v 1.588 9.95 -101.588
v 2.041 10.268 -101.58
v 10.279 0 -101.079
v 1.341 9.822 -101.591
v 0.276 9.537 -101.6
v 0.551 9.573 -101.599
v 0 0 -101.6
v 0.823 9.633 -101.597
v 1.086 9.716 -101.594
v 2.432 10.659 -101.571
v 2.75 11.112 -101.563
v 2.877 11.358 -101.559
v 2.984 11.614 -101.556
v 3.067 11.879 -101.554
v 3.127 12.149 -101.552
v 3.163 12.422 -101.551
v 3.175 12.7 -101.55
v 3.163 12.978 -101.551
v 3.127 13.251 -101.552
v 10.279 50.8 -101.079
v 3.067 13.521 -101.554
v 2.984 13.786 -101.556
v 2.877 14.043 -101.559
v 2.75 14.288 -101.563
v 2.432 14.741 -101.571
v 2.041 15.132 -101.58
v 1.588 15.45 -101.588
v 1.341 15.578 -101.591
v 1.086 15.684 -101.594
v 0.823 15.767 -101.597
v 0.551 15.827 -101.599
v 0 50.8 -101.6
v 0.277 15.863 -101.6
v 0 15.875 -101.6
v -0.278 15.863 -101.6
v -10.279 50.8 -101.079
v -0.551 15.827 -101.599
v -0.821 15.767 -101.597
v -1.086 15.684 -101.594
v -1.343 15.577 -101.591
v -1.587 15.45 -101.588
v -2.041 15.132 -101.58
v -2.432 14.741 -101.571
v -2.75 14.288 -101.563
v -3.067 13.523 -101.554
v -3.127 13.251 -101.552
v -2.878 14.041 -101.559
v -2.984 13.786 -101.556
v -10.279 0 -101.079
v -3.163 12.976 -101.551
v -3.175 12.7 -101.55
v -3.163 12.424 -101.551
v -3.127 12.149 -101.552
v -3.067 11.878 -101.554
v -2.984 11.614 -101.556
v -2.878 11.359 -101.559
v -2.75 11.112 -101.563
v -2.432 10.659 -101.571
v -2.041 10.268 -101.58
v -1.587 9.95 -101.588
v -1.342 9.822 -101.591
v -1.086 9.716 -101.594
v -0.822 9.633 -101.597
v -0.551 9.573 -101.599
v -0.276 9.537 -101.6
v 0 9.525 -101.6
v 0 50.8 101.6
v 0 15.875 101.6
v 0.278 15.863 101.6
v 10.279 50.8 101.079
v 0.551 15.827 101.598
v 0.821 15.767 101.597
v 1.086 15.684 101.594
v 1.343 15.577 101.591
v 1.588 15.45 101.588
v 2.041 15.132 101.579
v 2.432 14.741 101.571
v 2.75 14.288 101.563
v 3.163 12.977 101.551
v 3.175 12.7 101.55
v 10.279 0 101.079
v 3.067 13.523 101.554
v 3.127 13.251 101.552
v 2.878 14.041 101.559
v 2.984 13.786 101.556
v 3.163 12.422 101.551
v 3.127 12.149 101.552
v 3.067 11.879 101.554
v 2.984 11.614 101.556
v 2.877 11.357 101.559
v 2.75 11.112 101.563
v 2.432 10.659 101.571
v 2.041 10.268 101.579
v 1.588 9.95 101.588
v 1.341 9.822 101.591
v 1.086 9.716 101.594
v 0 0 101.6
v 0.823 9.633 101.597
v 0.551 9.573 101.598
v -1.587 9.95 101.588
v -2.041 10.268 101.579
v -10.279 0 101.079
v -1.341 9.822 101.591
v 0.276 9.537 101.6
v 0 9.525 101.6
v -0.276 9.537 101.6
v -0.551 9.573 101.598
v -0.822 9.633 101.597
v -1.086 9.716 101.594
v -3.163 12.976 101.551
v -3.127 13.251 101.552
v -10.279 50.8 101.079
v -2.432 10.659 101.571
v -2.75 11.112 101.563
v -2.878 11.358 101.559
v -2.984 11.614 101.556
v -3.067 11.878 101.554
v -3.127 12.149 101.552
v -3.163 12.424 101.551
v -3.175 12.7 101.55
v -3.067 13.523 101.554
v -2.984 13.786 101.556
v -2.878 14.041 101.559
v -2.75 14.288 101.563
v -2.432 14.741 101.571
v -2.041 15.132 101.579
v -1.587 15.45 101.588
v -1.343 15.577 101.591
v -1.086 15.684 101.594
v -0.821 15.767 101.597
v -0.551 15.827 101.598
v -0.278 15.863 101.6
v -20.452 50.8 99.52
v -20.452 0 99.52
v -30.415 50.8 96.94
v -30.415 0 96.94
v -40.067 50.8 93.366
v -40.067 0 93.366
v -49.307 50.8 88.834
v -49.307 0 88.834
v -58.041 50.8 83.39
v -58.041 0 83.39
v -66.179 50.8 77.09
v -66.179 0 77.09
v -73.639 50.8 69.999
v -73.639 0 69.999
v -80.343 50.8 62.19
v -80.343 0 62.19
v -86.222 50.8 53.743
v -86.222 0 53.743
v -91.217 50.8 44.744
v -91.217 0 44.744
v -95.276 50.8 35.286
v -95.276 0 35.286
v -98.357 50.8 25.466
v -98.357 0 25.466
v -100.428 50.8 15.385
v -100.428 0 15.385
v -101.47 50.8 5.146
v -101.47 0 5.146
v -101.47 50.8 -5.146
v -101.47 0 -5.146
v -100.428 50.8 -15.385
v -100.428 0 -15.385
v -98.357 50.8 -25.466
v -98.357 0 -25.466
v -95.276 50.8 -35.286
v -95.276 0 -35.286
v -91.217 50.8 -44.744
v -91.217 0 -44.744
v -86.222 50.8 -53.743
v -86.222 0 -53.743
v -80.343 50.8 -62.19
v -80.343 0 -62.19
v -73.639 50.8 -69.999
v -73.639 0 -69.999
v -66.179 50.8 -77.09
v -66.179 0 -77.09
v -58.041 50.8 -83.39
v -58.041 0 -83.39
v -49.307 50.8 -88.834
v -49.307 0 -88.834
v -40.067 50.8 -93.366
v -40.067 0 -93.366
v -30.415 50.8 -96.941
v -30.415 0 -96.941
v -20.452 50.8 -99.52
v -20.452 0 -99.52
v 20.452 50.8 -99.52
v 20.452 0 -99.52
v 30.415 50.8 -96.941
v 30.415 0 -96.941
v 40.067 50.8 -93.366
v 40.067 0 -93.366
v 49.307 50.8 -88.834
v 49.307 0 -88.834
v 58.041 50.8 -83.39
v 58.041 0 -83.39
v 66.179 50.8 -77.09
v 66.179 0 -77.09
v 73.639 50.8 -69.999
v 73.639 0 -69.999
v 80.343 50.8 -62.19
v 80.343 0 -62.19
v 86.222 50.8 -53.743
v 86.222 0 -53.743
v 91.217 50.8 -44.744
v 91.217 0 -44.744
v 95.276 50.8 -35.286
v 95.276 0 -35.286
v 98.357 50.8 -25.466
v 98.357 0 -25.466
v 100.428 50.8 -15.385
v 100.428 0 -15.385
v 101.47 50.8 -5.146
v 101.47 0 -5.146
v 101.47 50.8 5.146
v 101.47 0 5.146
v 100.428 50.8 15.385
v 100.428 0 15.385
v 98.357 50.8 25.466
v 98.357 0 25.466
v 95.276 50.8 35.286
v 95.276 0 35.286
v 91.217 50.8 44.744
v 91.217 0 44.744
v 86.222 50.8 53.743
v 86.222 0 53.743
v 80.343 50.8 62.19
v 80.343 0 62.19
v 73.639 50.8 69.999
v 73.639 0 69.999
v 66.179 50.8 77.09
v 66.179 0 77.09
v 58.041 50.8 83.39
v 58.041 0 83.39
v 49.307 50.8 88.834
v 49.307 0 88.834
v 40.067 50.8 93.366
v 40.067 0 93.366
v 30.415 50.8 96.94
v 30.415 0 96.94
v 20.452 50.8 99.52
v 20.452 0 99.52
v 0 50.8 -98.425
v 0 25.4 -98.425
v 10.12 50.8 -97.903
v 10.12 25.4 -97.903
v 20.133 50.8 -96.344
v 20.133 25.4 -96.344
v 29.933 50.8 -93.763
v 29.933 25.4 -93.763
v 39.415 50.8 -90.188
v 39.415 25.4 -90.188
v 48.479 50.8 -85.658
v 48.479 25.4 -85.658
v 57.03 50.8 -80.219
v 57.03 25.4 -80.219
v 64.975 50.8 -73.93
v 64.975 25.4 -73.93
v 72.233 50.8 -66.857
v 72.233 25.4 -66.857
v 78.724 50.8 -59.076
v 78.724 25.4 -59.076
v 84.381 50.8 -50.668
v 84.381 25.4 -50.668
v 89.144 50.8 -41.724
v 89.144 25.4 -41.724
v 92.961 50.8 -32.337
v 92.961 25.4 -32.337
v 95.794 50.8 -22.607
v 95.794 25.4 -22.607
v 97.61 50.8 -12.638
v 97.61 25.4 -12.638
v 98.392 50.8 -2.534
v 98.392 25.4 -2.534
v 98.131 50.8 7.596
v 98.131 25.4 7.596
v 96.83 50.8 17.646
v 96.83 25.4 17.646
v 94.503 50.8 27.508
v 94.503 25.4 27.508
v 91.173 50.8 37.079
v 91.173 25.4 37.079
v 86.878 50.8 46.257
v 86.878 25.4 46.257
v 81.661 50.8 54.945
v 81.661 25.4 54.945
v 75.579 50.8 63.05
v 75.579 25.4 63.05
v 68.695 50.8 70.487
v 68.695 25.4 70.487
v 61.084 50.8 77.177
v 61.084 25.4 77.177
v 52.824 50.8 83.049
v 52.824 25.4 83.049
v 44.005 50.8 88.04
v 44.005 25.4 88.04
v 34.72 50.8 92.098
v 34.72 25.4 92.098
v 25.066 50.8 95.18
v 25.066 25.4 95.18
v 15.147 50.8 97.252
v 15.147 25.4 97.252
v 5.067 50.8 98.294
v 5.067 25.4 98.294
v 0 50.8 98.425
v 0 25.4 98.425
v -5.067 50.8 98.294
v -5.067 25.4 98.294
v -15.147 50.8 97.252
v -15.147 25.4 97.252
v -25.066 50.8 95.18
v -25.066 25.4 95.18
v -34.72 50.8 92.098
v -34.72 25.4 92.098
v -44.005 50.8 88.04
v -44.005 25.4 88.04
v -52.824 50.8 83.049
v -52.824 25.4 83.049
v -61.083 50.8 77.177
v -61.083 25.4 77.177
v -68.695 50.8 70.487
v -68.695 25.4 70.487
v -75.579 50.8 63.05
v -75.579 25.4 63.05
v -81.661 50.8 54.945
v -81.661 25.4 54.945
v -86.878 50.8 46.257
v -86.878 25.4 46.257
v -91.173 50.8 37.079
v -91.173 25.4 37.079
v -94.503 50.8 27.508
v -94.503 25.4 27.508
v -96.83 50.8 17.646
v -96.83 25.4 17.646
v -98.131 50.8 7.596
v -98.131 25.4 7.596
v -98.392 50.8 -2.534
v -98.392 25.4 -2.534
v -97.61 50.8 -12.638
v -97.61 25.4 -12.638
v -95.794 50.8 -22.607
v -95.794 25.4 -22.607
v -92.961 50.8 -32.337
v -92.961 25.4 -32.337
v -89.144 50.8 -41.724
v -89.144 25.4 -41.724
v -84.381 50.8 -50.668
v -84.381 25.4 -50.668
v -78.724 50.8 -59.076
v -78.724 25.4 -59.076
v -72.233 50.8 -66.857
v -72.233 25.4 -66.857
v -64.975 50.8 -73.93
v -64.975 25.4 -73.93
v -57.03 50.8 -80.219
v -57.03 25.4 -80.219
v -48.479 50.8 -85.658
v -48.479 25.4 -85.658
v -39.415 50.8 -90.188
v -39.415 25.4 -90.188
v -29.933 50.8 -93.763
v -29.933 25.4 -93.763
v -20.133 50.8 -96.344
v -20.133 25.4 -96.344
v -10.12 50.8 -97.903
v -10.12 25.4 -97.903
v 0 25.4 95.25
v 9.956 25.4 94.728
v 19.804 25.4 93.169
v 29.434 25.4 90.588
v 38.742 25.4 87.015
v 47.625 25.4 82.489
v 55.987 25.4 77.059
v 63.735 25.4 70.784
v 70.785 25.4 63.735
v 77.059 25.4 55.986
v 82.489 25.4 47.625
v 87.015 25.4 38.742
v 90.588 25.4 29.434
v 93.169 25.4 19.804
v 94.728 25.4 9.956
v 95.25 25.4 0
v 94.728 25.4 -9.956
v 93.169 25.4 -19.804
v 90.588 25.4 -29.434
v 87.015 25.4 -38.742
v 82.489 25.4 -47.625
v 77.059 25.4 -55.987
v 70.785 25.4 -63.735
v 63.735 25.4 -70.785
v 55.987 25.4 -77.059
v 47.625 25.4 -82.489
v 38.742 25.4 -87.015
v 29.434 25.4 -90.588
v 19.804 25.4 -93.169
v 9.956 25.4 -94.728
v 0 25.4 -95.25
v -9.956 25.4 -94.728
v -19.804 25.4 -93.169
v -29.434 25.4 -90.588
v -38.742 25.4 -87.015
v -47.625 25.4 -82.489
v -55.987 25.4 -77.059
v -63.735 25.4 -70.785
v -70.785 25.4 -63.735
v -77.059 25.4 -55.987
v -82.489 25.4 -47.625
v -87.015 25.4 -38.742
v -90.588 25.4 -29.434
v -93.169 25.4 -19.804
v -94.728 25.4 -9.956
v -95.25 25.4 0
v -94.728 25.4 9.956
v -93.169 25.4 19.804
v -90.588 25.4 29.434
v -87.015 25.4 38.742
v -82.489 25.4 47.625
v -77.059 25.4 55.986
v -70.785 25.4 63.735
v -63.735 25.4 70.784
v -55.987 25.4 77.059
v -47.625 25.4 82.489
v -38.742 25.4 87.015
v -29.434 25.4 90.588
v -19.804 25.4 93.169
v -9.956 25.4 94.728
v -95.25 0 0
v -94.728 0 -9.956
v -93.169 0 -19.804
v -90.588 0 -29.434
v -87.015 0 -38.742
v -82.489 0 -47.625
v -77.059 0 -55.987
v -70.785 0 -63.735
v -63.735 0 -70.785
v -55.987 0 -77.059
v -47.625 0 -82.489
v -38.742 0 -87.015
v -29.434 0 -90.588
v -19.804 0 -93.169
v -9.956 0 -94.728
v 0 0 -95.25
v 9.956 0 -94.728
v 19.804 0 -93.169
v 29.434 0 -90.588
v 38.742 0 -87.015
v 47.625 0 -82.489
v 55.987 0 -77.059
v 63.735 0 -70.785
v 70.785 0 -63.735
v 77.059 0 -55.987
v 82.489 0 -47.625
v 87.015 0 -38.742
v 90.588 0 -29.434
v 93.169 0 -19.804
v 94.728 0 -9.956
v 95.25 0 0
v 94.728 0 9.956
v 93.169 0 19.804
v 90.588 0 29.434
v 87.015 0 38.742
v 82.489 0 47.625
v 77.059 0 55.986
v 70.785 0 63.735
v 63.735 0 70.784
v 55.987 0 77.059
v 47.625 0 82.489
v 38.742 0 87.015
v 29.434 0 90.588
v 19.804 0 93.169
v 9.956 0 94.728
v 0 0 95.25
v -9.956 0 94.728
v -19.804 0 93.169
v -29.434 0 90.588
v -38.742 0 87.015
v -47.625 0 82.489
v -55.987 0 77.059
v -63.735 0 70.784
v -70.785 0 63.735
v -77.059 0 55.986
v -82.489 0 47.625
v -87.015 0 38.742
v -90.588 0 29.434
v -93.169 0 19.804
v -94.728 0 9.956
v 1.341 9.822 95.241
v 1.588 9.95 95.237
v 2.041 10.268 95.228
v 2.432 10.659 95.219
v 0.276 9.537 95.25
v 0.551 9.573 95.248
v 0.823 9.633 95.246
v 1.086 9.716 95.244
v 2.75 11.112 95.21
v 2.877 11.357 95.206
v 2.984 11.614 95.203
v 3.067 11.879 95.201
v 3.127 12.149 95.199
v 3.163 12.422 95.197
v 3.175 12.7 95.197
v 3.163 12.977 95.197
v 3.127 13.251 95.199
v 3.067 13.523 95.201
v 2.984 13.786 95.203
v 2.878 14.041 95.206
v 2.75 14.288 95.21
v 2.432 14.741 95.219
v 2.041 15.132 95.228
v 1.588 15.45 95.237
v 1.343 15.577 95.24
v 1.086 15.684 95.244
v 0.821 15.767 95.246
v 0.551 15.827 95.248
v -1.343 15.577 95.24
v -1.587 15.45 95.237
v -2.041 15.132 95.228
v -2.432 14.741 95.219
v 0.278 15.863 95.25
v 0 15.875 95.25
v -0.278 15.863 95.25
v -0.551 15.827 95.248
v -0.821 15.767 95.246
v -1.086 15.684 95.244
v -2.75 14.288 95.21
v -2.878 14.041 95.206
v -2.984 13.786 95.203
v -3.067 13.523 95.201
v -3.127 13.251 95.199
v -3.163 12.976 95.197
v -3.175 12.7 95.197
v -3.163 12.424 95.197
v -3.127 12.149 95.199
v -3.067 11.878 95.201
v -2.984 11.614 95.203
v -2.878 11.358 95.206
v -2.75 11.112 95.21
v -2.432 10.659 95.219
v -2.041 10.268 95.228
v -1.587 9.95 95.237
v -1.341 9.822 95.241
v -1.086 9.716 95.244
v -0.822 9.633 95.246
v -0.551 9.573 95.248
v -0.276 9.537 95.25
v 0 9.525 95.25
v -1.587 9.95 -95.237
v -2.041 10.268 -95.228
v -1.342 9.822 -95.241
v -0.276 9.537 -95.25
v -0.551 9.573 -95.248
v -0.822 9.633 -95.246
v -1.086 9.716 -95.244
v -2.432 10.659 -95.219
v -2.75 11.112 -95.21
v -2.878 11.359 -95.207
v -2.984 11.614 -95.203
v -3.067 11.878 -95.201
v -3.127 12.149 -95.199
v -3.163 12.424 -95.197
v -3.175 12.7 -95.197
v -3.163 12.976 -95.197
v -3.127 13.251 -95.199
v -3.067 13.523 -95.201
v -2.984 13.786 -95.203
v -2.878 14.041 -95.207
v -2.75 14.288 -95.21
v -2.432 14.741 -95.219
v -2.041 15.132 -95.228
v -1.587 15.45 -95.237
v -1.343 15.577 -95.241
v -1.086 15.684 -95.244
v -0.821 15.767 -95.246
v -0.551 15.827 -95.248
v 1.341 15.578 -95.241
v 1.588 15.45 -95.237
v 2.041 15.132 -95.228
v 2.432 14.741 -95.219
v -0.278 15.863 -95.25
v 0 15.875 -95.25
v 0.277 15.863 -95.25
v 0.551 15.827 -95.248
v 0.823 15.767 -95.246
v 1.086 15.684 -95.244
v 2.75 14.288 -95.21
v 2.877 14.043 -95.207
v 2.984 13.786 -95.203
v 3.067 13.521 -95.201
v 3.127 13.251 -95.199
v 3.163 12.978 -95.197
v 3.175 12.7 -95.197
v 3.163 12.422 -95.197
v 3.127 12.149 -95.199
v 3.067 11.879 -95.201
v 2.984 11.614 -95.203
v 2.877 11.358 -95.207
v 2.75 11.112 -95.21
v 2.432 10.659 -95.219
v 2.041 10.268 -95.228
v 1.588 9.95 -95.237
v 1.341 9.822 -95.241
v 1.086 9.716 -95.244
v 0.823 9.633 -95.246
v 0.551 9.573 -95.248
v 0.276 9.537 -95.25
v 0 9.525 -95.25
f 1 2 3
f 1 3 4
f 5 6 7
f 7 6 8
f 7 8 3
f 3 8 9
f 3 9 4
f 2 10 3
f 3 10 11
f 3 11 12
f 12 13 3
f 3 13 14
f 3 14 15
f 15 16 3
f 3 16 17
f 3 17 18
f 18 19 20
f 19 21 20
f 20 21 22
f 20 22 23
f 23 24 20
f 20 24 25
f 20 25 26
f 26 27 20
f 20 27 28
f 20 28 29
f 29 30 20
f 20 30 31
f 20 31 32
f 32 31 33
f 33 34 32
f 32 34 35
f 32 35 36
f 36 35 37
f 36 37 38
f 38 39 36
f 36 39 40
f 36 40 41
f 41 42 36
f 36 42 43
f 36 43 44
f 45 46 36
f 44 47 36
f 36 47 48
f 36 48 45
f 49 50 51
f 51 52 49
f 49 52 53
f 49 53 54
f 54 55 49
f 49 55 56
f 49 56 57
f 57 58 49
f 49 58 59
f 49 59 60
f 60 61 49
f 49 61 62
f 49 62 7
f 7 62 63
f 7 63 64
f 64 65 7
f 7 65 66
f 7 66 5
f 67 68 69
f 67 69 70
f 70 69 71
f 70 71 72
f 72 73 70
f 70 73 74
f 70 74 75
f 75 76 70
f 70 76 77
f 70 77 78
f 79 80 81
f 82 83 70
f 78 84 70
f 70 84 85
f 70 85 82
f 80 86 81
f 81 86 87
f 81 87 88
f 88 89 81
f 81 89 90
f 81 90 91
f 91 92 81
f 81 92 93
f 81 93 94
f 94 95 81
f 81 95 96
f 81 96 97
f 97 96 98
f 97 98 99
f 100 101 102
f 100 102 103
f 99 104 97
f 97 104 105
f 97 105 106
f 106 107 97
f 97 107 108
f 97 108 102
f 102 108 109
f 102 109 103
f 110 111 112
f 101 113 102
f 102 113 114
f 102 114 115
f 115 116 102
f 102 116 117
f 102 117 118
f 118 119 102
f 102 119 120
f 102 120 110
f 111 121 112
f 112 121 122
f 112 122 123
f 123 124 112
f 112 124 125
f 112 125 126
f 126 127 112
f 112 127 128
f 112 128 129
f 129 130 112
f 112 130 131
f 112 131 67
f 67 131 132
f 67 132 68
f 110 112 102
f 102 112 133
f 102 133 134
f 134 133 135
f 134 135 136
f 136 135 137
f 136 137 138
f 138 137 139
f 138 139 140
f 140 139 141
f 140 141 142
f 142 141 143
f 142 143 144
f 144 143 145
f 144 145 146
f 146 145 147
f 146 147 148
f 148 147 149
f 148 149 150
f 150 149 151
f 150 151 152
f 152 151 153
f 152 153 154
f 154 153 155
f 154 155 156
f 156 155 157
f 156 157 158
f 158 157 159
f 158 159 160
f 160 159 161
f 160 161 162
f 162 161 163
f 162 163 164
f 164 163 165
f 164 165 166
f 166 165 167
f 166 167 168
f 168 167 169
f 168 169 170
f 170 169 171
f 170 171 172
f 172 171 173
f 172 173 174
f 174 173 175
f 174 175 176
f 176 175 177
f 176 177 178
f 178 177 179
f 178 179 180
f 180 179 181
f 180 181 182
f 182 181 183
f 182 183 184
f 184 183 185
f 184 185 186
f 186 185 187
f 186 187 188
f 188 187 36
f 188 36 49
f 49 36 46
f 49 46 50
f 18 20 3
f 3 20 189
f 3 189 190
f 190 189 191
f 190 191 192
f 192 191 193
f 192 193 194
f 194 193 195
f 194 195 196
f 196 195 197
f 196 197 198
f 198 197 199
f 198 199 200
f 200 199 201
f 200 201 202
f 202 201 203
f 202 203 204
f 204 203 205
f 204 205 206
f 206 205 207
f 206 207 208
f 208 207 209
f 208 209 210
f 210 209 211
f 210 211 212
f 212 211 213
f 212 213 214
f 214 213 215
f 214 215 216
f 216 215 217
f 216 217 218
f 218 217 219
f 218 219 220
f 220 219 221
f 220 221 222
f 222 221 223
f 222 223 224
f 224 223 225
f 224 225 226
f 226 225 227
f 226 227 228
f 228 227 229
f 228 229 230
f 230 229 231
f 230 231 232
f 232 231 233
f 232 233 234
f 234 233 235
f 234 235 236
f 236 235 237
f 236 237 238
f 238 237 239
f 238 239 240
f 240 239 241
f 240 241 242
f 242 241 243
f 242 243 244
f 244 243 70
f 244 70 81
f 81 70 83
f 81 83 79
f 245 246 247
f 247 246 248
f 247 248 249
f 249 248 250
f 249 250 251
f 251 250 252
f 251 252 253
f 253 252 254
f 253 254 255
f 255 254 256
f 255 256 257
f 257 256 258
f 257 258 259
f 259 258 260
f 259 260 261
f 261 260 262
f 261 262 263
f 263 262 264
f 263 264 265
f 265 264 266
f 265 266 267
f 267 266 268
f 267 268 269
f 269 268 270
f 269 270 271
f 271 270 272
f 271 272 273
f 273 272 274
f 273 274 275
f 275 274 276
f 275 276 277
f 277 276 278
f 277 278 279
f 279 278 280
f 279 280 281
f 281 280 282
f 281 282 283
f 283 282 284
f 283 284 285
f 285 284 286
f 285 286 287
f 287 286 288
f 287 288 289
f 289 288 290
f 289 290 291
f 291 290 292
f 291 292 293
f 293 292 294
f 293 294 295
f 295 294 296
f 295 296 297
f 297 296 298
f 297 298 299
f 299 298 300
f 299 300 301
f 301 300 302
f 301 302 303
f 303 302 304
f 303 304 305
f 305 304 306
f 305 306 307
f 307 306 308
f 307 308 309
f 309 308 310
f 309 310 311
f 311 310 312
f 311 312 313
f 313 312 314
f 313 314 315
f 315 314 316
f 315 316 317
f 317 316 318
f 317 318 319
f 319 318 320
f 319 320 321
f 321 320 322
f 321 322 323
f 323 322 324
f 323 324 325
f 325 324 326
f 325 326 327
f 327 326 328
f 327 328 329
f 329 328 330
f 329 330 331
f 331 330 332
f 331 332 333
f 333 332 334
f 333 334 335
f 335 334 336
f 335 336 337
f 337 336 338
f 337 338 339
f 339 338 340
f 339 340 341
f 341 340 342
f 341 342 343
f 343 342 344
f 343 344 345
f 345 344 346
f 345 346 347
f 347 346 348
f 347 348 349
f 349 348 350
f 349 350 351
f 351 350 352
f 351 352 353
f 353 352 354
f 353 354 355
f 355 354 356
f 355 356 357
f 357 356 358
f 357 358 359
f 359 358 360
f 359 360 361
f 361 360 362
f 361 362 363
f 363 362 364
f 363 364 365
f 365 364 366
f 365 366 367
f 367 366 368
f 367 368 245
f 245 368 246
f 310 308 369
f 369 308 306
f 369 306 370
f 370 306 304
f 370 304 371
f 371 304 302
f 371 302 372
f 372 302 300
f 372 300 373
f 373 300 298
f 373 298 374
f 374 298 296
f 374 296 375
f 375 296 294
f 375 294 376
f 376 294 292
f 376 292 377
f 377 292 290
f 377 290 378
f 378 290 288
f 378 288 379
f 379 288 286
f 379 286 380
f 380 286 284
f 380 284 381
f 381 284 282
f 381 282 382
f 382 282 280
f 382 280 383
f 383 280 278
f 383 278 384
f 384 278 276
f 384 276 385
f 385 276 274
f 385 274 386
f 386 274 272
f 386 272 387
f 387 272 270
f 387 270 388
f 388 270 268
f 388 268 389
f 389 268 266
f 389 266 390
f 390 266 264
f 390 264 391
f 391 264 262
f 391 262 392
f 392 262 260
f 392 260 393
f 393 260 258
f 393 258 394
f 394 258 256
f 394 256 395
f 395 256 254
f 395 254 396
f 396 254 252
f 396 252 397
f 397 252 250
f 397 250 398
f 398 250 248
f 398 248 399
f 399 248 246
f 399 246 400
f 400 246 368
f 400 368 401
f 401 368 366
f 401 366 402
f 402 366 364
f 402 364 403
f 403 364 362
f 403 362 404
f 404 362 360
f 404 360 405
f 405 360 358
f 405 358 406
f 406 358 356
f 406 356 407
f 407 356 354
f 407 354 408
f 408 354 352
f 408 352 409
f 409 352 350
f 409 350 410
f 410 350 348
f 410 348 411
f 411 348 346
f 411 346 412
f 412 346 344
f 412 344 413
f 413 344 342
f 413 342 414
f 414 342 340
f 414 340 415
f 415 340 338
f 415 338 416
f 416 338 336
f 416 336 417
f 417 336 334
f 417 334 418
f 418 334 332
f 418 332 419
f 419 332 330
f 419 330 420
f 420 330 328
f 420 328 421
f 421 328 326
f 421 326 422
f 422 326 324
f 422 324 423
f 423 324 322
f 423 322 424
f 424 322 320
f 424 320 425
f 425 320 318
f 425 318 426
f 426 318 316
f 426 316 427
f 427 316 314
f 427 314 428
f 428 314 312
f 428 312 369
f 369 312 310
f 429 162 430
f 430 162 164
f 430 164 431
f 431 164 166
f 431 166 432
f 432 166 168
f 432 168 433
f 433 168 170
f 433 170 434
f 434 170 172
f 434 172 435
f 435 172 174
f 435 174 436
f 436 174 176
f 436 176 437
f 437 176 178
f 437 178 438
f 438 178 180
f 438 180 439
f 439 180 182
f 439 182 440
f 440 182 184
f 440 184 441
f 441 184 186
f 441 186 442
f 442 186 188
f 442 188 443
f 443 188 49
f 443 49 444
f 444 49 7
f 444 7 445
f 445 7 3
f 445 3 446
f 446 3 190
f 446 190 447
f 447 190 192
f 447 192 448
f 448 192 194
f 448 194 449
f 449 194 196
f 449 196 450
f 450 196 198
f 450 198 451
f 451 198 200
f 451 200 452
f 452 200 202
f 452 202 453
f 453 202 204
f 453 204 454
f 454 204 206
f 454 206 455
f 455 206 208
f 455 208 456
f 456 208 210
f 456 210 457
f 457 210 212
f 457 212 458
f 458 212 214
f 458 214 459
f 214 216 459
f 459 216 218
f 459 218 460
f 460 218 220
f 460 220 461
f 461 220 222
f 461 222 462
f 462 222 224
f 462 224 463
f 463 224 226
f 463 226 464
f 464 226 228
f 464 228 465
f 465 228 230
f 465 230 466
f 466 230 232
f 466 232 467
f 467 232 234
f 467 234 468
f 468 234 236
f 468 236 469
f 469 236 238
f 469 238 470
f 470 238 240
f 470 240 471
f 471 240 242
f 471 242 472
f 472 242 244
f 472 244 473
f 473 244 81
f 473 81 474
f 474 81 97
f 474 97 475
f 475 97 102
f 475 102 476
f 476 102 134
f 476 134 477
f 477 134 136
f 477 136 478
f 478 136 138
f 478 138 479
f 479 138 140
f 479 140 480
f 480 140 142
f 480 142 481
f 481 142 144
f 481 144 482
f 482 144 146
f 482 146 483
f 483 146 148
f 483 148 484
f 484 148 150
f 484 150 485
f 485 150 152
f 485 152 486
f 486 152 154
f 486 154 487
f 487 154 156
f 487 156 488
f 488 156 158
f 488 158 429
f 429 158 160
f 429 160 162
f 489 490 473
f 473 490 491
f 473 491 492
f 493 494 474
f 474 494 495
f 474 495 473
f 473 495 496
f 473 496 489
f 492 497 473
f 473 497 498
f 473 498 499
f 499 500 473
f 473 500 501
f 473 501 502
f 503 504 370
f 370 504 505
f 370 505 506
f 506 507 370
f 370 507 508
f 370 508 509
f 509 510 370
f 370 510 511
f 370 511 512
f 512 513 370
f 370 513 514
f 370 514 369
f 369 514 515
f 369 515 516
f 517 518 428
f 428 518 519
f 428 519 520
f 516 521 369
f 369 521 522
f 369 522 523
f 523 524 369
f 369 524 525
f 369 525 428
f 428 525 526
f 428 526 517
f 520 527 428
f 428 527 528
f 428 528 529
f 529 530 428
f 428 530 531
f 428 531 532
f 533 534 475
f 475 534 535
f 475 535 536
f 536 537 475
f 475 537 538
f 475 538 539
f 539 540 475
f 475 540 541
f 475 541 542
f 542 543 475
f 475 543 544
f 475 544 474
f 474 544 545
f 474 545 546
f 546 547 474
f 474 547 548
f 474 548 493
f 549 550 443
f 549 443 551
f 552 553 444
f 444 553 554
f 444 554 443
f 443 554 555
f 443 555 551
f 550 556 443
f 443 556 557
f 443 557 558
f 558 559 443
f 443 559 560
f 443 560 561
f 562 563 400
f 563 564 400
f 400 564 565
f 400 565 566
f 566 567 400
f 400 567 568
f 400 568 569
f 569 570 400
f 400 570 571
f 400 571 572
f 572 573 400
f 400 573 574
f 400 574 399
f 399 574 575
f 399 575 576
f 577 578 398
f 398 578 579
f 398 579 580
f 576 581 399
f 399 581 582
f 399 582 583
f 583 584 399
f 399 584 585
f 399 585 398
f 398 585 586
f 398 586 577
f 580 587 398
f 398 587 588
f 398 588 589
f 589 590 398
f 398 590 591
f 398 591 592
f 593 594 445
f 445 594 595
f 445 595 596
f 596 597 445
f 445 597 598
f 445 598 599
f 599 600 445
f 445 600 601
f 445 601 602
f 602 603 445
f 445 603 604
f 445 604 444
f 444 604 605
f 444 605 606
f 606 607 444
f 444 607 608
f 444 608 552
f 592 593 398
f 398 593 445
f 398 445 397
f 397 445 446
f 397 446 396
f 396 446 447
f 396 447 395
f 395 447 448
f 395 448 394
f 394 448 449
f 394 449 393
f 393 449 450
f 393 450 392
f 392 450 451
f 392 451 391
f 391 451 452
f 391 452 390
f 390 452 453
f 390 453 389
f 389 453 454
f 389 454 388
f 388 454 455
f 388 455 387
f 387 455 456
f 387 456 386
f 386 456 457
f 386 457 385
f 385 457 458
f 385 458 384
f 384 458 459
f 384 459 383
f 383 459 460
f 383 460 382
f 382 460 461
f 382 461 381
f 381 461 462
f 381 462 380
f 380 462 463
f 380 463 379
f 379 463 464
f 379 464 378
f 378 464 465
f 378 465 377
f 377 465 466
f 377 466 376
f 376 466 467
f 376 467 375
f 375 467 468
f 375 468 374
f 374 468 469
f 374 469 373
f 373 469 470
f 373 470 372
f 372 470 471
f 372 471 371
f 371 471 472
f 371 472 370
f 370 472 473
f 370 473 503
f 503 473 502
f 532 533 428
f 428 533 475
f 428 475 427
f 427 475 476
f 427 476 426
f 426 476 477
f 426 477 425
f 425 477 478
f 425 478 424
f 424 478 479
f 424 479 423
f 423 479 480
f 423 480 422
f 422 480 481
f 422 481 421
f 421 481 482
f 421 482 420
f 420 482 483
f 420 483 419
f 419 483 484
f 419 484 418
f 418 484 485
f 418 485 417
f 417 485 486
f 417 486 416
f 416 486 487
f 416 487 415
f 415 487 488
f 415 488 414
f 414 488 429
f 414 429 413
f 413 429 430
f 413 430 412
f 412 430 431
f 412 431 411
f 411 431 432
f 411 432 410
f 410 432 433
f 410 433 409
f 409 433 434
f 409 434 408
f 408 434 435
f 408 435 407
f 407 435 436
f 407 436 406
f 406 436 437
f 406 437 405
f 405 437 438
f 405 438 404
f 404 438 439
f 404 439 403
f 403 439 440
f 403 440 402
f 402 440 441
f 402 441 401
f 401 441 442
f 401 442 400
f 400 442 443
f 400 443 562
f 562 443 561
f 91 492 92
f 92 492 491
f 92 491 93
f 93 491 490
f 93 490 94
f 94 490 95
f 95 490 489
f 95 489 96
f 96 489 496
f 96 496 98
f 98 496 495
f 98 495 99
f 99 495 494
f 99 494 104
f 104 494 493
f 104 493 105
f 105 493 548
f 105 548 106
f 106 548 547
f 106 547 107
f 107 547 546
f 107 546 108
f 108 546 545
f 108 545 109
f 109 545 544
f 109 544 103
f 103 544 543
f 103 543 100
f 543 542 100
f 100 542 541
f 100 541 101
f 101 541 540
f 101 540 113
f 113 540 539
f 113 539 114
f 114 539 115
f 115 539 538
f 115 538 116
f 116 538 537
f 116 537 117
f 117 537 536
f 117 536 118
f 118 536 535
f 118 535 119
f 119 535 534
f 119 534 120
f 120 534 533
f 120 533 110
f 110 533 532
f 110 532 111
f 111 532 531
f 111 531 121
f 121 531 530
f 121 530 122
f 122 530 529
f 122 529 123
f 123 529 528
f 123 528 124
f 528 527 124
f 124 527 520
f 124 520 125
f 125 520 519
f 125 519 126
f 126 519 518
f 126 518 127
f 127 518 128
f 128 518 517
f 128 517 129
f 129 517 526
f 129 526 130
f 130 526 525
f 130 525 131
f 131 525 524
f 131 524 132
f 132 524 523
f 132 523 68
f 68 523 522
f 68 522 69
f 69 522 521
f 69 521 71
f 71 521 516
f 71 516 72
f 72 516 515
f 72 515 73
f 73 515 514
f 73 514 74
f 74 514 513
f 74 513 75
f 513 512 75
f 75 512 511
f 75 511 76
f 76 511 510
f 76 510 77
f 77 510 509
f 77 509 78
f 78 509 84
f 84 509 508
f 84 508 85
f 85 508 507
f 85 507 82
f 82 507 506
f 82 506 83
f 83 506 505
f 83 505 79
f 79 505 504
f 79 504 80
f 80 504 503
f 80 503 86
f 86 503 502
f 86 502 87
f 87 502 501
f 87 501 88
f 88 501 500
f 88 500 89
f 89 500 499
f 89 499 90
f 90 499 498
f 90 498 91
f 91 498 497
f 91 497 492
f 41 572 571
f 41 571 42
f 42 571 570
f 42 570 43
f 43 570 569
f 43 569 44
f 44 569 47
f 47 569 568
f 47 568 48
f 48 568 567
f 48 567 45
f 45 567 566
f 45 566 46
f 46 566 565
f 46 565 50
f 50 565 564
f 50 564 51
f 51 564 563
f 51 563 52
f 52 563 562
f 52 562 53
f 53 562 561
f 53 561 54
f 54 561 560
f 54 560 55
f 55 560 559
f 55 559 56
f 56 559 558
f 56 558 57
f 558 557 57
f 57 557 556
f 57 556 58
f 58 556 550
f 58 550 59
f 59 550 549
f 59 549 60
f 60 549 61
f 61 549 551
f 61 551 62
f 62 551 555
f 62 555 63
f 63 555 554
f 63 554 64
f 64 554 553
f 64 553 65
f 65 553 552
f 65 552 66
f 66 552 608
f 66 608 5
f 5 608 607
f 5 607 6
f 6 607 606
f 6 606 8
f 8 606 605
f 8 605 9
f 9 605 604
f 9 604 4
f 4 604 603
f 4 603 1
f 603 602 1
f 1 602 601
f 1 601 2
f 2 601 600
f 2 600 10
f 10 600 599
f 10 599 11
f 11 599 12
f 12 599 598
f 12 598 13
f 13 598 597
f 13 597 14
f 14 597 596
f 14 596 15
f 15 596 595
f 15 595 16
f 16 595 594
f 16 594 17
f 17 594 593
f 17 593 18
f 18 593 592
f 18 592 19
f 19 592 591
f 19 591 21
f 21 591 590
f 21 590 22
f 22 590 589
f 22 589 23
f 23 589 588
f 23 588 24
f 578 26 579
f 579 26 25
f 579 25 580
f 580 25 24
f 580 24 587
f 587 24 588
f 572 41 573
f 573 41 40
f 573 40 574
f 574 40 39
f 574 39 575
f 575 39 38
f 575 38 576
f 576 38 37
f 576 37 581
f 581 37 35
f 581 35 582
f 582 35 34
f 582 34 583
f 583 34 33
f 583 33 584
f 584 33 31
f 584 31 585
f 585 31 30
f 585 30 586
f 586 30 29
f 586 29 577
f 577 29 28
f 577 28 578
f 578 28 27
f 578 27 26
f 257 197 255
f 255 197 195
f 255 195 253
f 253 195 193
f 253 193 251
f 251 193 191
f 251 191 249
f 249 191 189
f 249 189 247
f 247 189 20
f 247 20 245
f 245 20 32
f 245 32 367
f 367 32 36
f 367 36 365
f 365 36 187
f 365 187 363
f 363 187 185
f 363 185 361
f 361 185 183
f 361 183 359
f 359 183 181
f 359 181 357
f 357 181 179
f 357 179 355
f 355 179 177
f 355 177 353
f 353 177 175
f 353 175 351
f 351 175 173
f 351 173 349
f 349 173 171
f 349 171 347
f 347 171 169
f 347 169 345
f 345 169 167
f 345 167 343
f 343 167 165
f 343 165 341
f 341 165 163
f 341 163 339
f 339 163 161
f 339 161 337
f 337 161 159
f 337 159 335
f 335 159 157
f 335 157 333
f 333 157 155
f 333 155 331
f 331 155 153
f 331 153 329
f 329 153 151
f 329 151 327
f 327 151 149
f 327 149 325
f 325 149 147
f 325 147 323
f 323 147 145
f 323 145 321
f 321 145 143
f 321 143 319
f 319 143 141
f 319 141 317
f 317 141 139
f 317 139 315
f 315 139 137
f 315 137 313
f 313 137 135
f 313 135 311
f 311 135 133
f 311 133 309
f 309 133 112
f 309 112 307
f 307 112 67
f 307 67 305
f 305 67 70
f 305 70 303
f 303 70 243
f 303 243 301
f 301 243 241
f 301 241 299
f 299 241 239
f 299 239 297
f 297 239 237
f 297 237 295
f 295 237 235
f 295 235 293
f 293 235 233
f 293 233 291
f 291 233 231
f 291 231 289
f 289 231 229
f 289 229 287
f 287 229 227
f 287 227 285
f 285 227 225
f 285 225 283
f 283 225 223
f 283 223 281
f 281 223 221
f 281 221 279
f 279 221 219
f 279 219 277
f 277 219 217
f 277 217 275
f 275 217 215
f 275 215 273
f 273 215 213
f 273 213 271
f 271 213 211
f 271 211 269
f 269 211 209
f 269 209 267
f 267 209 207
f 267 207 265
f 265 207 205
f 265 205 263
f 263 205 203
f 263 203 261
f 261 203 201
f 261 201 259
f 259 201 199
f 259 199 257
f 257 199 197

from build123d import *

# Parameters (mm, degrees)
SKETCH1_R               = 101.6
SKETCH1_R_2             = 95.25
BOSS_EXTRUDE1_DEPTH     = 25.4
SKETCH2_R               = 3.175
CUT_EXTRUDE1_DEPTH      = 102.6
CUT_EXTRUDE1_DEPTH_BACK = 102.6
SKETCH5_R               = 101.6
SKETCH5_R_2             = 98.425
BOSS_EXTRUDE2_DEPTH     = 146.05
SKETCH9_R               = 2.1
CUT_EXTRUDE5_DEPTH      = 204.2000001
SKETCH10_R              = 101.6
CUT_EXTRUDE6_DEPTH      = 120.65


with BuildPart() as part:
    # Sketch1 → Boss-Extrude1 (new body)
    with BuildSketch(Plane(origin=(0, 0, 0), x_dir=(1, 0, 0), z_dir=(0, 1, 0))):
        Circle(SKETCH1_R)
        Circle(SKETCH1_R_2, mode=Mode.SUBTRACT)
    extrude(amount=BOSS_EXTRUDE1_DEPTH)

    # Sketch2 → Cut-Extrude1 (cut, two sides)
    with BuildSketch(Plane.XY) as cut_extrude1_sk:
        with Locations((0, 12.7)):
            Circle(SKETCH2_R)
    extrude(amount=CUT_EXTRUDE1_DEPTH, mode=Mode.SUBTRACT)
    extrude(cut_extrude1_sk.sketch, amount=-CUT_EXTRUDE1_DEPTH_BACK, mode=Mode.SUBTRACT)

    # Sketch5 → Boss-Extrude2 (add)
    with BuildSketch(Plane(origin=(0, 25.4, 0), x_dir=(1, 0, 0), z_dir=(0, 1, 0))):
        Circle(SKETCH5_R)
        Circle(SKETCH5_R_2, mode=Mode.SUBTRACT)
    extrude(amount=BOSS_EXTRUDE2_DEPTH)

    # Sketch9 → Cut-Extrude5 (cut, through all)
    with BuildSketch(Plane.XY.offset(101.6)):
        with Locations((-85.075, 156.8)):
            Circle(SKETCH9_R)
    extrude(amount=-CUT_EXTRUDE5_DEPTH, mode=Mode.SUBTRACT)

    # Sketch10 → Cut-Extrude6 (cut)
    with BuildSketch(Plane(origin=(0, 171.45, 0), x_dir=(1, 0, 0), z_dir=(0, 1, 0))):
        Circle(SKETCH10_R)
    extrude(amount=-CUT_EXTRUDE6_DEPTH, mode=Mode.SUBTRACT)


solid = part.part
